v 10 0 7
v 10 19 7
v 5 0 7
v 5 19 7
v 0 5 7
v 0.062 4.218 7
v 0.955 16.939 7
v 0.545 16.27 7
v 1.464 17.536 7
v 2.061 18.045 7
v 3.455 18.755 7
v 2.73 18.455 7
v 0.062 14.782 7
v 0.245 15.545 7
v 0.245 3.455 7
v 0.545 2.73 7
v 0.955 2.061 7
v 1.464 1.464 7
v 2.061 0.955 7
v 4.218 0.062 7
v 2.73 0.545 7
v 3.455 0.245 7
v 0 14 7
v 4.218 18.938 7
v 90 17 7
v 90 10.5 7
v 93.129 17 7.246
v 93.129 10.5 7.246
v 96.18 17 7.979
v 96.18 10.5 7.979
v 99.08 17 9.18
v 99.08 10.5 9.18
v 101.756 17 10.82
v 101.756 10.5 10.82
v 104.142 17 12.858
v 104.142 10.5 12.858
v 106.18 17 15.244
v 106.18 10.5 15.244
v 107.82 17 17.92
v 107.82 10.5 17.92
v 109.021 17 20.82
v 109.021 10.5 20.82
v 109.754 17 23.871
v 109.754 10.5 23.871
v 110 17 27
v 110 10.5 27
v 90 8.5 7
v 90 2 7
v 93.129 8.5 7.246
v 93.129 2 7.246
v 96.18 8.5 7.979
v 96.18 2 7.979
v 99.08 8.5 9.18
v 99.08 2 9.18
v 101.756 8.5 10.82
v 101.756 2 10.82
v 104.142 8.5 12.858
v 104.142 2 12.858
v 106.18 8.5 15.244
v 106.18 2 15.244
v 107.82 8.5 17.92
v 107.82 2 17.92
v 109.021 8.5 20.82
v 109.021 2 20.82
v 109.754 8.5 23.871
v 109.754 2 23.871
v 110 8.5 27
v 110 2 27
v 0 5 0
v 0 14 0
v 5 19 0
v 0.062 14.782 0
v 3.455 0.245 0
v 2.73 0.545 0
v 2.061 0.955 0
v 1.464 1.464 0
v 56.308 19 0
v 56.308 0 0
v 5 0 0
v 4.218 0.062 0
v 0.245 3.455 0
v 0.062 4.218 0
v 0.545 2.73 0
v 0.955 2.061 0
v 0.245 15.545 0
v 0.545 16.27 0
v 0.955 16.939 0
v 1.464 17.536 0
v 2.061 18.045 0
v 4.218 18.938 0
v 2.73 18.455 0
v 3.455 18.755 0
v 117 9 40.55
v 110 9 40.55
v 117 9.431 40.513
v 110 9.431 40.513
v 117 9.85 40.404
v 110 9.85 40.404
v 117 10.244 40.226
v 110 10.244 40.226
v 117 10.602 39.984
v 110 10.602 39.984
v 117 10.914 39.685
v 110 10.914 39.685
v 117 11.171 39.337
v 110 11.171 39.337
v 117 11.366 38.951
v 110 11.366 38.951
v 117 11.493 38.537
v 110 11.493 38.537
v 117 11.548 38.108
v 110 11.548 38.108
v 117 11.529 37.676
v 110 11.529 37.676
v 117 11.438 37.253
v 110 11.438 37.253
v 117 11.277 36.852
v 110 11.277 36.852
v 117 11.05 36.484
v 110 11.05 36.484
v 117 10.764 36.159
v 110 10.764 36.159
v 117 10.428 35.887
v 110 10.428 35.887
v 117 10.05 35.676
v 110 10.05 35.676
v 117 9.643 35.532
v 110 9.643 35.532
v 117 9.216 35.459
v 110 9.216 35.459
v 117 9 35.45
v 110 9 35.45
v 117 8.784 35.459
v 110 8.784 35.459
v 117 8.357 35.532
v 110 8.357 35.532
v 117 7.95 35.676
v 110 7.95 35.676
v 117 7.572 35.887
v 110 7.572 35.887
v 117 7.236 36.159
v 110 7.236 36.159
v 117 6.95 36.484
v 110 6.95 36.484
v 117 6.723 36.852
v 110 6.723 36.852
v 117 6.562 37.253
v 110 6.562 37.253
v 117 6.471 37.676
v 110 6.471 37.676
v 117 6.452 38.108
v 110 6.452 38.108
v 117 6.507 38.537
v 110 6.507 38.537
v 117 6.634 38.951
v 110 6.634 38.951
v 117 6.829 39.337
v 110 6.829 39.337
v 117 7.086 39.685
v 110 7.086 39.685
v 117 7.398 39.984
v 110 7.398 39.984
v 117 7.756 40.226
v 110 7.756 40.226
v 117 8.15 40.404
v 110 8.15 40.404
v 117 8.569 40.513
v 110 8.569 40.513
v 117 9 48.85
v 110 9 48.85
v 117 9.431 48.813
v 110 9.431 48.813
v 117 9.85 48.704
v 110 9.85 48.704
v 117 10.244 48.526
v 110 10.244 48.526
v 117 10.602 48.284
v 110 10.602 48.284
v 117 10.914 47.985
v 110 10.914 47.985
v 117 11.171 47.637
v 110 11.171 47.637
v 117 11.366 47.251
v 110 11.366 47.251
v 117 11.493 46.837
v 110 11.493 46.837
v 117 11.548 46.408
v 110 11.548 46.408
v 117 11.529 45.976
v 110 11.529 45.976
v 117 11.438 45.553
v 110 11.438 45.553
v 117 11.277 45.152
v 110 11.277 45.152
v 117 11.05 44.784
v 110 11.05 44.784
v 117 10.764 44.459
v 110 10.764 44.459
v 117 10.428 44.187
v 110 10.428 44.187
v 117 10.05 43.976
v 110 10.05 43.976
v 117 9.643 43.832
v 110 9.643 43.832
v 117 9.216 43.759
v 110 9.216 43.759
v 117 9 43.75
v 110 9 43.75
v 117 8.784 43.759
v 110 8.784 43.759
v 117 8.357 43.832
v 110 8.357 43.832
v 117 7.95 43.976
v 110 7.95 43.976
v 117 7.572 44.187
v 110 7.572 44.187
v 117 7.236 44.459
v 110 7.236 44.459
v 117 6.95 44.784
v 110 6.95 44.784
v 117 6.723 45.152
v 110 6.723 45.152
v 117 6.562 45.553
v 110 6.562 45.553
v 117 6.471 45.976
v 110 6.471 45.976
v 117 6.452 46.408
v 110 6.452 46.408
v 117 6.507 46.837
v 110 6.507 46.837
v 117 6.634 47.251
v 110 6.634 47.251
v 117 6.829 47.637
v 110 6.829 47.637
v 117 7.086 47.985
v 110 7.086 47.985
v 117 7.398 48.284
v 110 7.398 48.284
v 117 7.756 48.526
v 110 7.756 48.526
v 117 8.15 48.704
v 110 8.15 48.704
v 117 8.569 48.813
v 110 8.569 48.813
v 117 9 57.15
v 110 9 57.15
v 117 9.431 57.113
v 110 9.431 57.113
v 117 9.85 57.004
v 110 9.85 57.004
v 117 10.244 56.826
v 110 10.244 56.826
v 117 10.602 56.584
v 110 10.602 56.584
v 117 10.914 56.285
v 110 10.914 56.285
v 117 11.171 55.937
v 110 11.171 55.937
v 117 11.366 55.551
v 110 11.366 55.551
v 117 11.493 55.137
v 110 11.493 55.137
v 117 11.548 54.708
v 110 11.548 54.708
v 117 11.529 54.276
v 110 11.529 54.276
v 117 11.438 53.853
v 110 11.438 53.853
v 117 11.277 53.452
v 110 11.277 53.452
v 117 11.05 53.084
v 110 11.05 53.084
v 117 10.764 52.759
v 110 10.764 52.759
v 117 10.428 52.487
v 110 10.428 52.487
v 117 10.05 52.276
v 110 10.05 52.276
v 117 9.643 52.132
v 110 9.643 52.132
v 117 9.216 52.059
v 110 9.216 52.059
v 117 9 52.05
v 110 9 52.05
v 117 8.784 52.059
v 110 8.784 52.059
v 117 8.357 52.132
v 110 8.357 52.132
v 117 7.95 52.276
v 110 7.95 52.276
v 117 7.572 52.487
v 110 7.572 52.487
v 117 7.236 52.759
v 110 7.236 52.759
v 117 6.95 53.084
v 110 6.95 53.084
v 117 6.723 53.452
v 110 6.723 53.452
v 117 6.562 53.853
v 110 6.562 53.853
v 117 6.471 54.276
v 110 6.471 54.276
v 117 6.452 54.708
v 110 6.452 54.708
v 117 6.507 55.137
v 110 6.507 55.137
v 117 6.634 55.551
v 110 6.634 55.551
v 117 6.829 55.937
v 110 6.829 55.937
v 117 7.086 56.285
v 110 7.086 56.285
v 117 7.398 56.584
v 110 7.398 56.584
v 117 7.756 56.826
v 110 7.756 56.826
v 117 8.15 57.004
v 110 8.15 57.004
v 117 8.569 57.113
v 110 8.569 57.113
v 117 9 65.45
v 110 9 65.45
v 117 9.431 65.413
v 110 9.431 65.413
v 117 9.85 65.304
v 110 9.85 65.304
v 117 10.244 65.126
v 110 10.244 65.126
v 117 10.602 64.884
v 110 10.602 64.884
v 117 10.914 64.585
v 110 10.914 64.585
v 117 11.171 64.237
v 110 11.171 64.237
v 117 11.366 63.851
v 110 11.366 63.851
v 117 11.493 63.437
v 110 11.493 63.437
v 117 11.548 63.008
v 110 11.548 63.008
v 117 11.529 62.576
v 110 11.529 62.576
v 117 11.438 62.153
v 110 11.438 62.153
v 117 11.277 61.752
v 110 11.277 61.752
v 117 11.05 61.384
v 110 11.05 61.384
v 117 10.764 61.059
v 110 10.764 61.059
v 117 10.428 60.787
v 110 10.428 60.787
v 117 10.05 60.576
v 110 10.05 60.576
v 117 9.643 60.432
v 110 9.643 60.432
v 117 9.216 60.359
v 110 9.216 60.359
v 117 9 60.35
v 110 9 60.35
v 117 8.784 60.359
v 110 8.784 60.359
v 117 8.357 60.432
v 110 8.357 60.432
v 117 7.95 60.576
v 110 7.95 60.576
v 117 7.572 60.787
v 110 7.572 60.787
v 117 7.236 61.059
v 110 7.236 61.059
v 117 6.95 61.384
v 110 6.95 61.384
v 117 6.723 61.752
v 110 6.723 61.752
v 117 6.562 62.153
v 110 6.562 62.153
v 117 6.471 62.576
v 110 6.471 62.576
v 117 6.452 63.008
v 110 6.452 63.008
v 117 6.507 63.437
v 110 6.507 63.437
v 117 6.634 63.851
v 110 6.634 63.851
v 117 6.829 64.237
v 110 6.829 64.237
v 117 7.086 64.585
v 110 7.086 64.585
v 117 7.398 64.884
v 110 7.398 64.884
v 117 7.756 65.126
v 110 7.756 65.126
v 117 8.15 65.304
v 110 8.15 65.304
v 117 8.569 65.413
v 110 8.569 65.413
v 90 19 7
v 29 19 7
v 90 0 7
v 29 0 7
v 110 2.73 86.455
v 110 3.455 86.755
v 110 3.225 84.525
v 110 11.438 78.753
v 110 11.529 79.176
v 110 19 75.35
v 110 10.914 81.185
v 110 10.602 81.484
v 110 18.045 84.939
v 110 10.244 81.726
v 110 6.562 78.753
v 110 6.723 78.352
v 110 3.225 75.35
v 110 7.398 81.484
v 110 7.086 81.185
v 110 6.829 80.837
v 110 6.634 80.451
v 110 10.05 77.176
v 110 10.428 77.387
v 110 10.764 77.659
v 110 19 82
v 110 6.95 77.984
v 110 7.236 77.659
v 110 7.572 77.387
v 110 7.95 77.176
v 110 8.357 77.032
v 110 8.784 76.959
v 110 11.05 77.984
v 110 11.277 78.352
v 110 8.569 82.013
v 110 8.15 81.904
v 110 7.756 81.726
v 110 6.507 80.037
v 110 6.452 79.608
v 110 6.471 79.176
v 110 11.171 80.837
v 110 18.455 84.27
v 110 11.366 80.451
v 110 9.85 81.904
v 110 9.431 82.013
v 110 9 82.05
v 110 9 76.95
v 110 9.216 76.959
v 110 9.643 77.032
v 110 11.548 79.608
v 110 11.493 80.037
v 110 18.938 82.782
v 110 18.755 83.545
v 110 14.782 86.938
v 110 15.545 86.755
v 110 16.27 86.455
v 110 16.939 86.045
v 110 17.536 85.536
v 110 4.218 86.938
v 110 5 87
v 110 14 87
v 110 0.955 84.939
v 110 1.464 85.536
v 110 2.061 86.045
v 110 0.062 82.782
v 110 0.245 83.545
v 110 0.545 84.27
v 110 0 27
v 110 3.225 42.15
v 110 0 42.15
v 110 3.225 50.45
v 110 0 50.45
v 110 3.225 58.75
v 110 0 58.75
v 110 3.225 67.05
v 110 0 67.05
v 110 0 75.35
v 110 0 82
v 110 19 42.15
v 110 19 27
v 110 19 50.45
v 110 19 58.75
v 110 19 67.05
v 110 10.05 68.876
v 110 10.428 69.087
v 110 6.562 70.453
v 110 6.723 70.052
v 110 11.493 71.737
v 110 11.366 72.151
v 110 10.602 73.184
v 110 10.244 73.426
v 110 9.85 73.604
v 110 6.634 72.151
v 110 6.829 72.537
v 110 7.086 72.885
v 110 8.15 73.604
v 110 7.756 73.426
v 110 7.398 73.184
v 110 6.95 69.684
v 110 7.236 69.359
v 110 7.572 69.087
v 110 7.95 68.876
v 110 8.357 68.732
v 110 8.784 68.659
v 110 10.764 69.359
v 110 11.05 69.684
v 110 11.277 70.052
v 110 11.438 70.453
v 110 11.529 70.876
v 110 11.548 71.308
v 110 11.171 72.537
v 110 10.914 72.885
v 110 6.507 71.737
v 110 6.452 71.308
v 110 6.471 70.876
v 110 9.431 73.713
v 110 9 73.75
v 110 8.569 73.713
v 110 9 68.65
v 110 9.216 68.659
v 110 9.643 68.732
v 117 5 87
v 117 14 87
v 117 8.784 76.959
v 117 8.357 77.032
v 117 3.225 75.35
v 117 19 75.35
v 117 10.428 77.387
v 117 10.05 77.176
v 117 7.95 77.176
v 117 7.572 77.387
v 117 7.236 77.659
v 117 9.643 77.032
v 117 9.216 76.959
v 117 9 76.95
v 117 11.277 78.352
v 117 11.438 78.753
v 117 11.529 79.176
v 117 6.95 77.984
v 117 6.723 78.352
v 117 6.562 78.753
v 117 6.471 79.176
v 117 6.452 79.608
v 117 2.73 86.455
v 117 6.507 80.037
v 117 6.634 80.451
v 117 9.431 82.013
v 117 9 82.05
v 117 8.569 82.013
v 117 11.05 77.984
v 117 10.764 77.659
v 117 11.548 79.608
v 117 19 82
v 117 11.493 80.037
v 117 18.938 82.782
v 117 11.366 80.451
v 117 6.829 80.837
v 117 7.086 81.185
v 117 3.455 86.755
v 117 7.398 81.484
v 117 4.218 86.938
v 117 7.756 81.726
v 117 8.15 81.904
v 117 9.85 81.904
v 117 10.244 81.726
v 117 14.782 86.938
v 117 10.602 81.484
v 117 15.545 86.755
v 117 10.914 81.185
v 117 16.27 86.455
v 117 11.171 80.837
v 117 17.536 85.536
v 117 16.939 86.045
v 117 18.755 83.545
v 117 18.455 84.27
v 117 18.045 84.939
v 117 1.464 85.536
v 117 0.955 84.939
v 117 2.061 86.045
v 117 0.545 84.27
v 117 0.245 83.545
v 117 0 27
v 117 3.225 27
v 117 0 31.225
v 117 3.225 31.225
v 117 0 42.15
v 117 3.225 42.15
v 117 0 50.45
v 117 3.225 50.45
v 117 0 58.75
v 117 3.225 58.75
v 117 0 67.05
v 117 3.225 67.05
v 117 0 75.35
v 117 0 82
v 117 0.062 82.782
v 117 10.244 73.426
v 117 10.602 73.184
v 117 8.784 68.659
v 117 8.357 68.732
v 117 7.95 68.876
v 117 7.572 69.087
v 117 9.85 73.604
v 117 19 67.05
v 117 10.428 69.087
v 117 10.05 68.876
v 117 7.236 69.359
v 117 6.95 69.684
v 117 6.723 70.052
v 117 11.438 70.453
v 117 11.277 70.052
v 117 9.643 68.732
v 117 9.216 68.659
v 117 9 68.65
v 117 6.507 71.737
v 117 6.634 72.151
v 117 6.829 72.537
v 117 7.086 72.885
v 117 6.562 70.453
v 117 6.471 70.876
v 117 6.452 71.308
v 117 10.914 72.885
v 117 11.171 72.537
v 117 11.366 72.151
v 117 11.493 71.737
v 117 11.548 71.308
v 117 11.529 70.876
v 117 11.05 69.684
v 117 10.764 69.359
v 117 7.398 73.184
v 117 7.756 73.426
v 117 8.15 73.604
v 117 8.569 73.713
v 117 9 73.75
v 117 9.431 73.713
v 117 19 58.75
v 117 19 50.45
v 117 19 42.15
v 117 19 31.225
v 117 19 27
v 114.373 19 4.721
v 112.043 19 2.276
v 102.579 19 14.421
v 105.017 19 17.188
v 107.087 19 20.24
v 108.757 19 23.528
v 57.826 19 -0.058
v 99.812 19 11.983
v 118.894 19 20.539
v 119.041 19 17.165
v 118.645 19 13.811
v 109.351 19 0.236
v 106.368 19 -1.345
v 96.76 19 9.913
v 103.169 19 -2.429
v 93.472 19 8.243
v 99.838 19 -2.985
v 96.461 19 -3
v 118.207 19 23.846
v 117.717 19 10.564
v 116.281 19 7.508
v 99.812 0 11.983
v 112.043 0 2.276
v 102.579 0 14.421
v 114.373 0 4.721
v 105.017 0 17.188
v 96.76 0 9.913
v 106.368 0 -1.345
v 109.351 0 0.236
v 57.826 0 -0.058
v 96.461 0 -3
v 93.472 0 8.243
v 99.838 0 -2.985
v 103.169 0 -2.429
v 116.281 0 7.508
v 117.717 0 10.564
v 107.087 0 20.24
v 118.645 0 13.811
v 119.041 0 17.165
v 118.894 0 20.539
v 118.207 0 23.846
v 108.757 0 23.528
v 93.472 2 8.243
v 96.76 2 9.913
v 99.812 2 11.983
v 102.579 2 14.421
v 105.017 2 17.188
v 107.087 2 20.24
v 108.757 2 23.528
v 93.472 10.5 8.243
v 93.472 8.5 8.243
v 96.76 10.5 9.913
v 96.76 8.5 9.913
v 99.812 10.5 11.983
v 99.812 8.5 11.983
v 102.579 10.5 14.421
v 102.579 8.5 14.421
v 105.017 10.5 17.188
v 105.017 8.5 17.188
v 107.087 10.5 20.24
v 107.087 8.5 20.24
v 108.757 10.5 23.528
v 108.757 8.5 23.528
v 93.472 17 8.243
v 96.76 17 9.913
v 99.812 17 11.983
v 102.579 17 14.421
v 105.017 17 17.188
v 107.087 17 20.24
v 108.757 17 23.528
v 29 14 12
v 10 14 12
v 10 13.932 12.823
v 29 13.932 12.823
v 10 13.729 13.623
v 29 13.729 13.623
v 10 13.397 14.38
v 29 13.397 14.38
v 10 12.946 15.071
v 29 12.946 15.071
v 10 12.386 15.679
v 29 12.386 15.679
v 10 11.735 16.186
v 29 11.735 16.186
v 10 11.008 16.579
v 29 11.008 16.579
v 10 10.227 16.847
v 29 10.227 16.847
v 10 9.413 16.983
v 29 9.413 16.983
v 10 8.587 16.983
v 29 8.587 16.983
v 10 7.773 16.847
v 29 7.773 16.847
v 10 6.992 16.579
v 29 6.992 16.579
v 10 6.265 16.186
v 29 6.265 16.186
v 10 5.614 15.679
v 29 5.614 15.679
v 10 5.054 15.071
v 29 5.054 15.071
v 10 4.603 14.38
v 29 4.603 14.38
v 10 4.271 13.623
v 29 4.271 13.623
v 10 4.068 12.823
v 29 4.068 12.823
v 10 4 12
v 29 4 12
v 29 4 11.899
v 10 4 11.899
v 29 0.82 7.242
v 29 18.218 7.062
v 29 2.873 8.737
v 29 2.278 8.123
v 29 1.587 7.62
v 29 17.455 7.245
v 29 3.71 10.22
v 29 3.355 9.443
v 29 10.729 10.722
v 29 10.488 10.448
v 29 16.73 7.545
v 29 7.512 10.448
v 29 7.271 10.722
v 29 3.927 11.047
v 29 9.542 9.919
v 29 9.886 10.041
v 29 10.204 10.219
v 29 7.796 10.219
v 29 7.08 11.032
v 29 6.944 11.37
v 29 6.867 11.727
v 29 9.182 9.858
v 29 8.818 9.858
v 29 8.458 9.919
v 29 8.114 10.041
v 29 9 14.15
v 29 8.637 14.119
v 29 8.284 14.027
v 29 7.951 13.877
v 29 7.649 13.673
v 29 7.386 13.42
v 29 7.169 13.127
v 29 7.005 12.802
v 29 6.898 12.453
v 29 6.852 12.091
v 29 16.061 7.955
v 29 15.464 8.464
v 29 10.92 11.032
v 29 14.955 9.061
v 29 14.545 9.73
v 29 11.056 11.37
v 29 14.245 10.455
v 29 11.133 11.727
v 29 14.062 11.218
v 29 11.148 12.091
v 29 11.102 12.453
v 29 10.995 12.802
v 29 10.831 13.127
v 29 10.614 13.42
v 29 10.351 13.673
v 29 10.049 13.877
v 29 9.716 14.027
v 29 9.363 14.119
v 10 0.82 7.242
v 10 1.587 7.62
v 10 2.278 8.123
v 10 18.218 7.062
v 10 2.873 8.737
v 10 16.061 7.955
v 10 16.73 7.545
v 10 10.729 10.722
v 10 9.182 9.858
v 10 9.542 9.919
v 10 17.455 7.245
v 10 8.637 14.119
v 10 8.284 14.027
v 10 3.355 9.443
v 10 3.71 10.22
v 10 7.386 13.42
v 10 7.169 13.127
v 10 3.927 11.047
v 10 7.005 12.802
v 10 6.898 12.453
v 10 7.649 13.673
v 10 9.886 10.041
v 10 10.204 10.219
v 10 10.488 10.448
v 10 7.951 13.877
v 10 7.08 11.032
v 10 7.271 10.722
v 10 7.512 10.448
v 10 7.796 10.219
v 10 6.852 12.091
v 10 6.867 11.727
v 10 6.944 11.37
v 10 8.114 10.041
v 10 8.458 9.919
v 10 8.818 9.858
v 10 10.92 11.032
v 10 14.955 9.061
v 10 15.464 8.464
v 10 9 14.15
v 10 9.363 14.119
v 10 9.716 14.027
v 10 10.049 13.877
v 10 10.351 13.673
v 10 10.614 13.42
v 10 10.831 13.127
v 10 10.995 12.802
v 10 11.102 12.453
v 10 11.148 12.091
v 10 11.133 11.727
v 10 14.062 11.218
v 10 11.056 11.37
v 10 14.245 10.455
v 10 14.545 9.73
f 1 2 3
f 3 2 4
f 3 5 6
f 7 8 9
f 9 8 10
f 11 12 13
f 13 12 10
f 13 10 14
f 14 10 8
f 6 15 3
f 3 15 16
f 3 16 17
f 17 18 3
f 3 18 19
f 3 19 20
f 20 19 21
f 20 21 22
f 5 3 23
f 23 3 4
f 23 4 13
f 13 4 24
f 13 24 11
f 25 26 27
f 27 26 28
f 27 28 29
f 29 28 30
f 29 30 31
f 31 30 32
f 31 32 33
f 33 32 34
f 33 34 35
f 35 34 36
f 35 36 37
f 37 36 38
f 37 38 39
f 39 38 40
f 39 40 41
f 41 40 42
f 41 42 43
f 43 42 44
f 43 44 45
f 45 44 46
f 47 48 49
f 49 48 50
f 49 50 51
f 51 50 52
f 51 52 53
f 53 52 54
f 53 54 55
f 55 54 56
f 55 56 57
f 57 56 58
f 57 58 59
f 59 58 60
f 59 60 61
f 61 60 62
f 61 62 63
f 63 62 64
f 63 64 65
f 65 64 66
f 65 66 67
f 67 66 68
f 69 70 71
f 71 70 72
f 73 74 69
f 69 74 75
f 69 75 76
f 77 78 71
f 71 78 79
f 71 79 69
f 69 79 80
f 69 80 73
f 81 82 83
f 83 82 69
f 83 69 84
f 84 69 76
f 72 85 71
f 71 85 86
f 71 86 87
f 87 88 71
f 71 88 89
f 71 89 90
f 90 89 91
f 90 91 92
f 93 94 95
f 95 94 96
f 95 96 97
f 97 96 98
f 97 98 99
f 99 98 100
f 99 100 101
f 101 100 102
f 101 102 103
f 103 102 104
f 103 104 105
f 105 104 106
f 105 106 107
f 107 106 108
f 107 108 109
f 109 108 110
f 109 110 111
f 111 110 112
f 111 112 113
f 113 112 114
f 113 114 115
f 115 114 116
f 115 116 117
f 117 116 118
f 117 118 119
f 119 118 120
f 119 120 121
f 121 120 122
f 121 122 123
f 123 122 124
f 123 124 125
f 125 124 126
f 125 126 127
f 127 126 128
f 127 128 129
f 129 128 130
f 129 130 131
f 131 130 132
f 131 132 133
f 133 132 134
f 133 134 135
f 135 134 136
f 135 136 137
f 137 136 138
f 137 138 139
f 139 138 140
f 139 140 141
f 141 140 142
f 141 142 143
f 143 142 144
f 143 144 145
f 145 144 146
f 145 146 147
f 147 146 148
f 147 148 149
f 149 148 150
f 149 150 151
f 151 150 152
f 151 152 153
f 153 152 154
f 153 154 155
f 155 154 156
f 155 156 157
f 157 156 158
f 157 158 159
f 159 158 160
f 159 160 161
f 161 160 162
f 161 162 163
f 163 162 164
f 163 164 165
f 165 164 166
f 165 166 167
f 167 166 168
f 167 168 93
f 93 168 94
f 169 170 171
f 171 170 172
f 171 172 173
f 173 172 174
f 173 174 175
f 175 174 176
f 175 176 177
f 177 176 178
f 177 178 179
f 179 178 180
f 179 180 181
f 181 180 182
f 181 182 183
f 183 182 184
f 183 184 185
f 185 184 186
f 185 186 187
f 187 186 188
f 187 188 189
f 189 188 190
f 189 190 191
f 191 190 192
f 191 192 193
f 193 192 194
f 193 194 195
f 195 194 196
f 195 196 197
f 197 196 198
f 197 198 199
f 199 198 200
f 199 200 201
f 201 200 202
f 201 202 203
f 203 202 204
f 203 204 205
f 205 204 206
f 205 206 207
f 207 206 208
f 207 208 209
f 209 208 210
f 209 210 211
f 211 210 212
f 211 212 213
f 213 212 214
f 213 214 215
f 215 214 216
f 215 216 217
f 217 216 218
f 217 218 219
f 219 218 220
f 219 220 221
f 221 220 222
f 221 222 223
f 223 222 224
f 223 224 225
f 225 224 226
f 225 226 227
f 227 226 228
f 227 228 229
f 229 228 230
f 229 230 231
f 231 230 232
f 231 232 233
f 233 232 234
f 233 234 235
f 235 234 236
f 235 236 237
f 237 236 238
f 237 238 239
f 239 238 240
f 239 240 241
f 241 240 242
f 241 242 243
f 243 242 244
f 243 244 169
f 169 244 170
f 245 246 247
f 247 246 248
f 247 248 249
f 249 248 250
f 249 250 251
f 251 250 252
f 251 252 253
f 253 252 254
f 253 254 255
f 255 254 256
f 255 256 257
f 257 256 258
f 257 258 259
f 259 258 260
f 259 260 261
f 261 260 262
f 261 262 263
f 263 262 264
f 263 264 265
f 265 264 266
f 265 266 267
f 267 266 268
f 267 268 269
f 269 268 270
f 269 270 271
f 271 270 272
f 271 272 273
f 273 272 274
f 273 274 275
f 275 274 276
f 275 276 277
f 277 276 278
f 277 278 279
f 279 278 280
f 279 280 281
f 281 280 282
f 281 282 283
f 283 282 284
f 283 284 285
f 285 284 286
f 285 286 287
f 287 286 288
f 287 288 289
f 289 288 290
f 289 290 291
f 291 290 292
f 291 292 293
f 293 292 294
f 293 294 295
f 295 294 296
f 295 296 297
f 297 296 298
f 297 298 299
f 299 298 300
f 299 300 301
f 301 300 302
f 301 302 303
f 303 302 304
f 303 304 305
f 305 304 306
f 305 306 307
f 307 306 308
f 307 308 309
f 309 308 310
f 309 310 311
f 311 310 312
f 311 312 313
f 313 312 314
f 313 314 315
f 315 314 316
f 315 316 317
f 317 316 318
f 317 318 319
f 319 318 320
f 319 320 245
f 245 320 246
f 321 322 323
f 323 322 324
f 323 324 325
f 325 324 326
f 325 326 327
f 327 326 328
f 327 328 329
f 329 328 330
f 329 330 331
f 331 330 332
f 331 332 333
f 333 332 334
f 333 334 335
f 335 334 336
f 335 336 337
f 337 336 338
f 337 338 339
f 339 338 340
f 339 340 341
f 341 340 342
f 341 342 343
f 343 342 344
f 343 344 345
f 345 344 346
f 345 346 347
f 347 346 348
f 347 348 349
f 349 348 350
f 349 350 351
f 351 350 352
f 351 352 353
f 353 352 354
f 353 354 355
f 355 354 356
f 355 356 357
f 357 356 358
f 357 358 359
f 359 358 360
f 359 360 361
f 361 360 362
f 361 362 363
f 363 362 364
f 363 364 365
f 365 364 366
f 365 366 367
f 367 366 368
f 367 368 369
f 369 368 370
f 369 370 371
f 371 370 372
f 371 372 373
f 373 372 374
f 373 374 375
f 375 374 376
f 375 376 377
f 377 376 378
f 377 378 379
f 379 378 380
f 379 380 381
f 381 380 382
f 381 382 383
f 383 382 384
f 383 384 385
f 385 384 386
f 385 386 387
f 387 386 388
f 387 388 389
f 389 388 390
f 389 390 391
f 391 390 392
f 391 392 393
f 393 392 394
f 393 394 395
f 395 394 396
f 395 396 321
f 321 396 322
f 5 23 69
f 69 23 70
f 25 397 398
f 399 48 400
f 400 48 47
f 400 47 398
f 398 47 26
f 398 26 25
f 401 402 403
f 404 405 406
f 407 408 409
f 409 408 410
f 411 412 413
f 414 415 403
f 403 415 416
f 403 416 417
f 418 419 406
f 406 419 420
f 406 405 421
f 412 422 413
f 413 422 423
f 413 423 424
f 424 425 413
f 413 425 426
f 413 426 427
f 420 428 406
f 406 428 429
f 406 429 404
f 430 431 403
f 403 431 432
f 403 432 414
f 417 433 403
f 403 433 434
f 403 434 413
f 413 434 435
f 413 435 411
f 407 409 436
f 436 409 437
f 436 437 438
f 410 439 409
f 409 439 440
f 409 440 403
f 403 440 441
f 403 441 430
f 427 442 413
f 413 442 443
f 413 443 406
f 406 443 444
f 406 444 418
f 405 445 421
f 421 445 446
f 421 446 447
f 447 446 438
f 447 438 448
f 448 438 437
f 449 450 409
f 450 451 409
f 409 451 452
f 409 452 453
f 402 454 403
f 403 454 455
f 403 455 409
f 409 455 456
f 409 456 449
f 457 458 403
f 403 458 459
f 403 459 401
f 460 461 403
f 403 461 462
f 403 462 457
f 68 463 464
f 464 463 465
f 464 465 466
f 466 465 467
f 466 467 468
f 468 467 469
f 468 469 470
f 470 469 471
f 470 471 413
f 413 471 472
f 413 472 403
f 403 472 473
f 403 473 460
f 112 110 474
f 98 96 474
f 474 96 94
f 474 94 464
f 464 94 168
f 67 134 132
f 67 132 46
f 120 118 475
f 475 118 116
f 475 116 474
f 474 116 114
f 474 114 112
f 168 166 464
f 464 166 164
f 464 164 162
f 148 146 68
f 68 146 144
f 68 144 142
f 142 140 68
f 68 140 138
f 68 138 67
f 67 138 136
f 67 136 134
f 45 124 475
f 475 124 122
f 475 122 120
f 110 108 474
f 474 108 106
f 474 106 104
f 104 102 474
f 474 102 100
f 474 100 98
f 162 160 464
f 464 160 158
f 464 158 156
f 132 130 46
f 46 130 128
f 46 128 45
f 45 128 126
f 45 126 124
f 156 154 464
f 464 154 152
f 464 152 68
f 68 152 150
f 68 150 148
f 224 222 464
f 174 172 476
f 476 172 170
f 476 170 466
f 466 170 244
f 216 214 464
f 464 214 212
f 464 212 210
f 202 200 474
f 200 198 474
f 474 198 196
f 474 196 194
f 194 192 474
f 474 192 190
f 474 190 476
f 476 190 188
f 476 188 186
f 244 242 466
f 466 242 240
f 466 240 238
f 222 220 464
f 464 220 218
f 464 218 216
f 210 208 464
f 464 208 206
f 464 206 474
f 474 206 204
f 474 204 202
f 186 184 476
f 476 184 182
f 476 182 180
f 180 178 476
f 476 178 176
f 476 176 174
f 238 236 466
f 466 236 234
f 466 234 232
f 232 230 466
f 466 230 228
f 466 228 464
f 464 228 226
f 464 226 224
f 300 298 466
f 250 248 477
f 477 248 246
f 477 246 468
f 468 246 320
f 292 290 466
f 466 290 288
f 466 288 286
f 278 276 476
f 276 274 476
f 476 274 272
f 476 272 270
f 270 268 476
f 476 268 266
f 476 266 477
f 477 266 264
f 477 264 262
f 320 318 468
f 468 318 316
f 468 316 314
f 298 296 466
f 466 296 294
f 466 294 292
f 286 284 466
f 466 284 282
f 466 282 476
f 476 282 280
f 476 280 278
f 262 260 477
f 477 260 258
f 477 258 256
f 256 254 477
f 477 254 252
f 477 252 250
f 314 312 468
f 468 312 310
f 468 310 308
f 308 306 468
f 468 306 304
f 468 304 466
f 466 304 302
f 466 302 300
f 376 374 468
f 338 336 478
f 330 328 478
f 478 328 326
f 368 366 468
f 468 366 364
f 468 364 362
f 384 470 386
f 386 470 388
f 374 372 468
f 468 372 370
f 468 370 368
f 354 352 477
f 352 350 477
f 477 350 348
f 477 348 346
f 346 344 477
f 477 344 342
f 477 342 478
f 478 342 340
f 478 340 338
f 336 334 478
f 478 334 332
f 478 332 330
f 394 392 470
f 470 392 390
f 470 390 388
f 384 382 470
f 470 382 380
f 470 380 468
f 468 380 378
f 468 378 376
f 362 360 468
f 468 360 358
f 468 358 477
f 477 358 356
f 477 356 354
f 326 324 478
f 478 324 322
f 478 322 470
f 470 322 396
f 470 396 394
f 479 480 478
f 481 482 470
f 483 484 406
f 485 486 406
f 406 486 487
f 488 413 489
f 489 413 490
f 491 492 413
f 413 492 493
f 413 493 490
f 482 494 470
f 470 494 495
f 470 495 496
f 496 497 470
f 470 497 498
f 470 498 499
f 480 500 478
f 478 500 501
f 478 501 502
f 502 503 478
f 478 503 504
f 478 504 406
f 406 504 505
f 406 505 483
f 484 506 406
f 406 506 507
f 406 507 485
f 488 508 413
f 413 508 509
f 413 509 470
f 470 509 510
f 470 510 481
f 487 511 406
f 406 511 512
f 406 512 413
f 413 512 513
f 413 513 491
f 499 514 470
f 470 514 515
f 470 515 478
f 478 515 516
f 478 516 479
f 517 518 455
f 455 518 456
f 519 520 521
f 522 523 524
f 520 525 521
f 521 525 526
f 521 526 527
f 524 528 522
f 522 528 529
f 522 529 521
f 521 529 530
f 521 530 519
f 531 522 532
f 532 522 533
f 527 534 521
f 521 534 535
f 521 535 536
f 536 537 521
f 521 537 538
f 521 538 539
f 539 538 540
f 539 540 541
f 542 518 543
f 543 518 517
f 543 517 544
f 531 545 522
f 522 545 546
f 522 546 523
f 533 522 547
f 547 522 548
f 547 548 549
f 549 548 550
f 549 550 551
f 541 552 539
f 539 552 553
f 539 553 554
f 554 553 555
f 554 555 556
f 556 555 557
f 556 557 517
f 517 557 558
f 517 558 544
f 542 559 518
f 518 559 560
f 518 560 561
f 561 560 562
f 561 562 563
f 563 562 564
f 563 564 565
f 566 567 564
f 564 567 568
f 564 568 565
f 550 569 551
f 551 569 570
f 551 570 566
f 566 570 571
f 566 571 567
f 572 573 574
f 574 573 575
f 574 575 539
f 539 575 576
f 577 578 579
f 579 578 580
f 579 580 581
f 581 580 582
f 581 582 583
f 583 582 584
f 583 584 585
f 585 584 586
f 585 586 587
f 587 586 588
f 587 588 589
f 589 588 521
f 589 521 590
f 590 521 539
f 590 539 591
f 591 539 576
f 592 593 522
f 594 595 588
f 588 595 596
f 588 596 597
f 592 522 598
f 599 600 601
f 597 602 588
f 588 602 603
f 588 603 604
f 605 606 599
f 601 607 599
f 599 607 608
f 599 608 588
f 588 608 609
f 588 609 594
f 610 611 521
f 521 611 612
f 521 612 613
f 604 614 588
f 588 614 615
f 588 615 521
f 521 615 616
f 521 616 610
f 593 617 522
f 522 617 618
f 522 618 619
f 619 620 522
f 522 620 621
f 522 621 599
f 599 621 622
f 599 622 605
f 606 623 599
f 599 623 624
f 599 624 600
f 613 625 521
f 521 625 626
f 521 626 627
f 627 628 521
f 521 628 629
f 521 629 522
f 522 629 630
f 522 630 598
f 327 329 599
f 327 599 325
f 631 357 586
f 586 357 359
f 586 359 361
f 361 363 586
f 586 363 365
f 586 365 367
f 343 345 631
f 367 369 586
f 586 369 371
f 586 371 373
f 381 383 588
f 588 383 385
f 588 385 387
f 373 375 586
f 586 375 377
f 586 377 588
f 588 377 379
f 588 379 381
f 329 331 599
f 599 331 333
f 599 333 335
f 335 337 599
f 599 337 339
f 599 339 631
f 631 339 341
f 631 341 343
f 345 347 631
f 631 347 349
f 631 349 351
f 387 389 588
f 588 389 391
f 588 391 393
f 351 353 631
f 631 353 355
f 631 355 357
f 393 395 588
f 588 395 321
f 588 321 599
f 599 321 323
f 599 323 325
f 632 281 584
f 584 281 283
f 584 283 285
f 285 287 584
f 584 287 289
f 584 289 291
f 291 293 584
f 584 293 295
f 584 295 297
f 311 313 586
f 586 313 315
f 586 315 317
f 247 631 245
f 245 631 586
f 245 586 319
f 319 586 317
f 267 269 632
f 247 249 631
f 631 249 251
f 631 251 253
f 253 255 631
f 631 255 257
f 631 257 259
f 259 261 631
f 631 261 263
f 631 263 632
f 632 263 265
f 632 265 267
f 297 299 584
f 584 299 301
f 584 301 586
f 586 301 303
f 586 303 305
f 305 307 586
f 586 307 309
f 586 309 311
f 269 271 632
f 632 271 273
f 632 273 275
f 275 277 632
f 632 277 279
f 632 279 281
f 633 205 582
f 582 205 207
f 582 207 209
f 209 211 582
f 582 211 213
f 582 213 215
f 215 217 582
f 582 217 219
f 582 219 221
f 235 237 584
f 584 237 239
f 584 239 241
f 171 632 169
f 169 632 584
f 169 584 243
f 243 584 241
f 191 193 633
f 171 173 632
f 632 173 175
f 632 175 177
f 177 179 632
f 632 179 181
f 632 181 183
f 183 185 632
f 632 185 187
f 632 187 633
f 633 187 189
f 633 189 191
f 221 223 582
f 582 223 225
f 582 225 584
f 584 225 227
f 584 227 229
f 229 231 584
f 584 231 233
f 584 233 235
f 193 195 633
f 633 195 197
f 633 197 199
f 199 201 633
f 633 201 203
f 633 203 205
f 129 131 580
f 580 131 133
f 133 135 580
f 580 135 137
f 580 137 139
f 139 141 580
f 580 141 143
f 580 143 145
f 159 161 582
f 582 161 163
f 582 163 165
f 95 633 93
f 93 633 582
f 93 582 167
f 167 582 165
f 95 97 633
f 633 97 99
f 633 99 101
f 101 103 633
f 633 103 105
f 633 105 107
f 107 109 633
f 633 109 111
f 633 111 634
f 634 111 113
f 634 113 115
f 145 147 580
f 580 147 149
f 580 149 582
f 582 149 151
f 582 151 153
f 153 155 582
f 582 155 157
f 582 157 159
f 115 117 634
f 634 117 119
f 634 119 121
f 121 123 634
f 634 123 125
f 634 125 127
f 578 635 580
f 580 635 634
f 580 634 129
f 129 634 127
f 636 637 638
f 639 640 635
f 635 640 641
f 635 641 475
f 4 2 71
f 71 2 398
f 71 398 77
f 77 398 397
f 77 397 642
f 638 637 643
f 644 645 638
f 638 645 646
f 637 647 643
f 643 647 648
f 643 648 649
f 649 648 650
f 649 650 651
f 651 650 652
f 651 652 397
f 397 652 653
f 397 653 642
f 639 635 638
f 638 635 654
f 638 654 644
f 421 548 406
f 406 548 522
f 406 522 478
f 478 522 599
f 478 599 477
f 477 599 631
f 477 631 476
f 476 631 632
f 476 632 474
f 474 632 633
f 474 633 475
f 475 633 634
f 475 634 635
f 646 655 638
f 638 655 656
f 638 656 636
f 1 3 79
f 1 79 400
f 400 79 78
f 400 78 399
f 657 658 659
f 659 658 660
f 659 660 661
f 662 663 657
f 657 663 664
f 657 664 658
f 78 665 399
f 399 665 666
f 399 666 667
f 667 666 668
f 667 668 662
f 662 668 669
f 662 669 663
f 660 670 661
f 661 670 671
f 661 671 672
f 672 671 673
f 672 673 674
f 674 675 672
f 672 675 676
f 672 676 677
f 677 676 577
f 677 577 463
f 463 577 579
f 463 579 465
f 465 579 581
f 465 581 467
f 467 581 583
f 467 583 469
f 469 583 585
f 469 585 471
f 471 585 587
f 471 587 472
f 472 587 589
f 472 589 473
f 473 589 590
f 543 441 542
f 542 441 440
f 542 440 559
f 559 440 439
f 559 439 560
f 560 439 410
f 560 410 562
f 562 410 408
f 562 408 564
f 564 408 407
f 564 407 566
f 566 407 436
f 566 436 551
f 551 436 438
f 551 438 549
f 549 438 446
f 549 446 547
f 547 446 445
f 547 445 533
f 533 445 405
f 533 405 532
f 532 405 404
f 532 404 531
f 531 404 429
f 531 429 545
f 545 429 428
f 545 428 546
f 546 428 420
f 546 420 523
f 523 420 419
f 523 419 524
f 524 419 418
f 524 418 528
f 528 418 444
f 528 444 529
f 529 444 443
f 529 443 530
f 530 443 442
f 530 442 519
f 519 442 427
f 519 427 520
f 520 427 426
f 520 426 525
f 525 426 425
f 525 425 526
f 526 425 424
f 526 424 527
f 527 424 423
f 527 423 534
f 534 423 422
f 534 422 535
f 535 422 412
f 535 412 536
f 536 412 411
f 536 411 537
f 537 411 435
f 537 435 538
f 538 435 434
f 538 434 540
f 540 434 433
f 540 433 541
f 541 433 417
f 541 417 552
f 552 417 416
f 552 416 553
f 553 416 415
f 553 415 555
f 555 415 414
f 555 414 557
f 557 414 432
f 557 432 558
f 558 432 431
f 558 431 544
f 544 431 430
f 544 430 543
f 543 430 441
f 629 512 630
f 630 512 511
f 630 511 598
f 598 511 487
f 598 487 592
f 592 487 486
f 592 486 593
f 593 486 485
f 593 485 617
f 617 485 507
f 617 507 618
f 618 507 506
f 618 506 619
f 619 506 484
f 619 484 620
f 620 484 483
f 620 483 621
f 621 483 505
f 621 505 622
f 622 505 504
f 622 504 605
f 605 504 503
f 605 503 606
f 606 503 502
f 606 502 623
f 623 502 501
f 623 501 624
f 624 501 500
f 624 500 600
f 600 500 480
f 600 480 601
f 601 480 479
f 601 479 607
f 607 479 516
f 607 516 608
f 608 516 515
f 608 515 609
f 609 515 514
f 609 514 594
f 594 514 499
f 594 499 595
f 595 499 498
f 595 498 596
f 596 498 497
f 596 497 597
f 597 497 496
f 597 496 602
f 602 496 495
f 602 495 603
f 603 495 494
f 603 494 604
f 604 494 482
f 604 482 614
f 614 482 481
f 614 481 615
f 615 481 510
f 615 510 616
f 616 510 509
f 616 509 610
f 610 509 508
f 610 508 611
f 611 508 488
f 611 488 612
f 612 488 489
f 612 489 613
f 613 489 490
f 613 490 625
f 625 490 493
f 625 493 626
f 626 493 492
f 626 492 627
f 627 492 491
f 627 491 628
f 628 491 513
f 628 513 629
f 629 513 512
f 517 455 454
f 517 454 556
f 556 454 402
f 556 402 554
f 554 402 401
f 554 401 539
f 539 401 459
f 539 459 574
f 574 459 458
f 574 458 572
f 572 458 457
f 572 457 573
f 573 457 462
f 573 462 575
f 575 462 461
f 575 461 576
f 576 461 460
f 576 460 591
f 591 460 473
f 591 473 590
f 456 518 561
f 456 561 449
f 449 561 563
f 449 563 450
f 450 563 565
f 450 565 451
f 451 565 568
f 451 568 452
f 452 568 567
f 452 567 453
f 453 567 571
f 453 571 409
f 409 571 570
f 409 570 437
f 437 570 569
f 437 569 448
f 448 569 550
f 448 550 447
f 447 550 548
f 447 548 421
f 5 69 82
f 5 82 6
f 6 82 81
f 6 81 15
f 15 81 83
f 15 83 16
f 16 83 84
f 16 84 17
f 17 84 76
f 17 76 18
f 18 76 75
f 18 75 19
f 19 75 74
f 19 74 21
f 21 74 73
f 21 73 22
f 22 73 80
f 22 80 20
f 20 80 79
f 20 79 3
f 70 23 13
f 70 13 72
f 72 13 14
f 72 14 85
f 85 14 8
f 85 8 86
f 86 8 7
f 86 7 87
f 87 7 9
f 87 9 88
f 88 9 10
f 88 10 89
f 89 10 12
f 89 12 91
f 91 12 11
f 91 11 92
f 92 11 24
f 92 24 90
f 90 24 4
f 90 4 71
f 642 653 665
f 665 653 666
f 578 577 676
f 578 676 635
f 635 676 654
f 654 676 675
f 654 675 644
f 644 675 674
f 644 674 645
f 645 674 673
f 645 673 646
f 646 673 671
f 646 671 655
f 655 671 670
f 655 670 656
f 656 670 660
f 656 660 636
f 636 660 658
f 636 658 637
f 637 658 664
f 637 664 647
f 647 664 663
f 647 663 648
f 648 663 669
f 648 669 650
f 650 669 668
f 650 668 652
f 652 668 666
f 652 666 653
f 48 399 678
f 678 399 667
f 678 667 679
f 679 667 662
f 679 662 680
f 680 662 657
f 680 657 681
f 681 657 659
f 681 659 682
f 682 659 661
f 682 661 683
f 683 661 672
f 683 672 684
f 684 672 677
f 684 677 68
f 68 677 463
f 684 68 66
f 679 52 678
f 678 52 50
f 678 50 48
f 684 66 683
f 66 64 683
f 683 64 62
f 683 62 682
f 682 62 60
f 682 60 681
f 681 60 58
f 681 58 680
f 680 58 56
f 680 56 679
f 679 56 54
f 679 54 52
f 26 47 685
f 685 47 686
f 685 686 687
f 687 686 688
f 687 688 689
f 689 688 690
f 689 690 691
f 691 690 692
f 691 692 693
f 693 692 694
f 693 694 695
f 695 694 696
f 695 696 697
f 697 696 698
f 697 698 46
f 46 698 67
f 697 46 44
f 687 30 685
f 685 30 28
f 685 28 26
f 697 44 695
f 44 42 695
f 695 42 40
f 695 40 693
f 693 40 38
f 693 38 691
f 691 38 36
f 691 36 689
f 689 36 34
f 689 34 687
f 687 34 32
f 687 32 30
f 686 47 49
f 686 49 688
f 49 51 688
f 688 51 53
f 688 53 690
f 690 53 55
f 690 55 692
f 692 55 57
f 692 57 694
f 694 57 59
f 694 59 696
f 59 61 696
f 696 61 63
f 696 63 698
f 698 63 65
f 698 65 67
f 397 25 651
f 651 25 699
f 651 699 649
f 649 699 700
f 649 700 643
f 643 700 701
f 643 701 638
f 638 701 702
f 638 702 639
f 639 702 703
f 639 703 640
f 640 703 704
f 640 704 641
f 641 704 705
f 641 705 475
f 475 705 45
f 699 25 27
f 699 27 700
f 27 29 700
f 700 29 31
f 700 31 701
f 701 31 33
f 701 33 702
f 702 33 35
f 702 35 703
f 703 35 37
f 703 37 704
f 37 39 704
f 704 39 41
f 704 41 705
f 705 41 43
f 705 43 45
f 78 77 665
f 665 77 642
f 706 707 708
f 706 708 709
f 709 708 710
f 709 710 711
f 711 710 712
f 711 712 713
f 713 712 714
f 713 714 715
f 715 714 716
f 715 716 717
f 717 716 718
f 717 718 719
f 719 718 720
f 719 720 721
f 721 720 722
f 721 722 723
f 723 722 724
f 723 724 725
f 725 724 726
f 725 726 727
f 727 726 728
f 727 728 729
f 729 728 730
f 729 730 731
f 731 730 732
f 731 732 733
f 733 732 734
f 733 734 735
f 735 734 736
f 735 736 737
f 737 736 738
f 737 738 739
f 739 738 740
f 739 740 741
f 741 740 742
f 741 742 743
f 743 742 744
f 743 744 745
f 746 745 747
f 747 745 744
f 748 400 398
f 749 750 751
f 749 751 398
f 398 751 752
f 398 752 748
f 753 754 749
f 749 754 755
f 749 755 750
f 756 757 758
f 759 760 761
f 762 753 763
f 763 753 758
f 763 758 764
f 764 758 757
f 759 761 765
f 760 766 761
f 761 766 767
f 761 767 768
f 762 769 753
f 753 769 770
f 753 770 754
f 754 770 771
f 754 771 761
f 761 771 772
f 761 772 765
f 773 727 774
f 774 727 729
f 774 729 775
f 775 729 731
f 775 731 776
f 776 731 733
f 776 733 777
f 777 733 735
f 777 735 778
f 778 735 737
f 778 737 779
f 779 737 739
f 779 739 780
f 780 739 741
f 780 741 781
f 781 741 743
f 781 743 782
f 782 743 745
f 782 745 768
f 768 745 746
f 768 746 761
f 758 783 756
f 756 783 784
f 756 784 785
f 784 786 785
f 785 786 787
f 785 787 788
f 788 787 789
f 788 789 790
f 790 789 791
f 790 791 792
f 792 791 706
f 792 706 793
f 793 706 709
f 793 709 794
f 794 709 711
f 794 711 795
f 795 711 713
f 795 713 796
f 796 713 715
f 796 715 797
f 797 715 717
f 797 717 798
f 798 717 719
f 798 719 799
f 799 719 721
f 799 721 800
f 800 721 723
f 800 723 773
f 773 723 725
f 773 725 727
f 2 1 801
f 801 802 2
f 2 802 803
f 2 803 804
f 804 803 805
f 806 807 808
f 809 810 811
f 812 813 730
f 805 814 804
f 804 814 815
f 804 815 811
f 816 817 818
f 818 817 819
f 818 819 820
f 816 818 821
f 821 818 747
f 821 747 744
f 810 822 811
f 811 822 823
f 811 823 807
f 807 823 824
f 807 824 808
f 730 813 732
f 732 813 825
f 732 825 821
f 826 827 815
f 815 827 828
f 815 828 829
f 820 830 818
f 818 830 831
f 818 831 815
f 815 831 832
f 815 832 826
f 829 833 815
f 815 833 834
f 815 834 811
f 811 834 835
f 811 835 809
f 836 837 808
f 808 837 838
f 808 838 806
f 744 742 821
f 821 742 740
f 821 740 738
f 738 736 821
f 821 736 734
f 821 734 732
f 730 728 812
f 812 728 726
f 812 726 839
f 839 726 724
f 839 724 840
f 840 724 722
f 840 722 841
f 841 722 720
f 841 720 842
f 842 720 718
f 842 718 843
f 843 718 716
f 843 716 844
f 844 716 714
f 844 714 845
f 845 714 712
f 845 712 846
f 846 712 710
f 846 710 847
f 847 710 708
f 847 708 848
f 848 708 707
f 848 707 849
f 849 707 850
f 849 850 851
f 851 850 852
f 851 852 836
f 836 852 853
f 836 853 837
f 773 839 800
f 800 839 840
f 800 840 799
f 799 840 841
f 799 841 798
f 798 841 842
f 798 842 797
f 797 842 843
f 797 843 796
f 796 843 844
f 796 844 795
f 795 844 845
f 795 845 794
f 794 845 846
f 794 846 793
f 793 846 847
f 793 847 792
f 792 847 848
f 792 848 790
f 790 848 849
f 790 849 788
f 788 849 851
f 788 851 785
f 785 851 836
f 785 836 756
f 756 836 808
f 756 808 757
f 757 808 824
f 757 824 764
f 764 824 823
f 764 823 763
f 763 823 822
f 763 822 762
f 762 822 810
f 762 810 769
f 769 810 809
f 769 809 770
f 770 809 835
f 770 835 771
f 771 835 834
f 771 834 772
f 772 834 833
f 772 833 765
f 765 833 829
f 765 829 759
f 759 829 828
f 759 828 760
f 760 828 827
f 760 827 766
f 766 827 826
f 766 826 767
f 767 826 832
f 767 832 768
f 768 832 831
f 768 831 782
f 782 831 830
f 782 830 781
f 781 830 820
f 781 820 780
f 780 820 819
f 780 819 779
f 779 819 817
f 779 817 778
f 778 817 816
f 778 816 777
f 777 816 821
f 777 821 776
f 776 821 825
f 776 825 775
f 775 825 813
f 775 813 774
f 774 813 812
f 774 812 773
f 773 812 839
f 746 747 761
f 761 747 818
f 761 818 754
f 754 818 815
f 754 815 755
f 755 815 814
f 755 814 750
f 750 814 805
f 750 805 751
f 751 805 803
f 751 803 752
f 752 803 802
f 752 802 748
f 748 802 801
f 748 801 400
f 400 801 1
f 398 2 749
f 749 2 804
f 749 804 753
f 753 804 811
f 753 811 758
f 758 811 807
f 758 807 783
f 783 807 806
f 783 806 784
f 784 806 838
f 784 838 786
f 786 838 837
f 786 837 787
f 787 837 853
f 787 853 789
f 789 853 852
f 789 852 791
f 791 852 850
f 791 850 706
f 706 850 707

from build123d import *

# Parameters (mm, degrees)
BOSS_EXTRUDE1_DEPTH = 19
SKETCH4_R           = 2.55
CUT_EXTRUDE1_DEPTH  = 148.034009671
LPATTERN1_COUNT     = 6
LPATTERN1_PITCH     = 8.3
FILLET2_R           = 5
BOSS_EXTRUDE4_DEPTH = 19
BOSS_EXTRUDE5_DEPTH = 2
LPATTERN3_COUNT     = 3
LPATTERN3_PITCH     = 8.5
FILLET4_R           = 20
SKETCH9_R           = 2.15
BOSS_EXTRUDE6_DEPTH = 19
FILLET5_R           = 5


with BuildPart() as part:
    # Sketch1 → Boss-Extrude1 (new body)
    with BuildSketch(Plane(origin=(0, 0, 0), x_dir=(1, 0, 0), z_dir=(0, 1, 0))):
        with BuildLine():
            Line((0, 0), (90, 0))
            ThreePointArc((90, 0), (109.091883092, -7.908116908), (117, -27))
            Line((117, -27), (117, -87))
            Line((117, -87), (110, -87))
            Line((110, -87), (110, -27))
            ThreePointArc((110, -27), (104.142135624, -12.857864376), (90, -7))
            Line((90, -7), (0, -7))
            Line((0, -7), (0, 0))
        make_face()
    extrude(amount=BOSS_EXTRUDE1_DEPTH)

    # Sketch4 → Cut-Extrude1 (cut, through all)
    with BuildSketch(Plane(origin=(0, 0, 0), x_dir=(0, 0, -1), z_dir=(1, 0, 0))):
        with Locations((-79.5, 9)):
            Circle(SKETCH4_R)
    cut_extrude1 = extrude(amount=CUT_EXTRUDE1_DEPTH, mode=Mode.SUBTRACT)

    # LPattern1: Cut-Extrude1 ×6
    with Locations(*[(0, 0, -i * LPATTERN1_PITCH) for i in range(1, LPATTERN1_COUNT)]):
        add(cut_extrude1, mode=Mode.SUBTRACT)

    # Fillet2
    fillet2_edges = [part.edges().sort_by_distance(p)[0] for p in [
        (0, 0, 3.5),
        (113.5, 19, 87),
        (0, 19, 3.5),
        (113.5, 0, 87),
    ]]
    fillet(fillet2_edges, radius=FILLET2_R)

    # Sketch6 → Boss-Extrude4 (add)
    with BuildSketch(Plane(origin=(0, 0, 0), x_dir=(1, 0, 0), z_dir=(0, 1, 0))):
        with BuildLine():
            Line((57.067989457, 0), (96.460545107, 3))
            ThreePointArc((96.460545107, 3), (115.383129249, -6.075834674), (117, -27))
            ThreePointArc((117, -27), (109.091883092, -7.908116908), (90, 0))
            Line((90, 0), (57.067989457, 0))
        make_face()
    extrude(amount=BOSS_EXTRUDE4_DEPTH)

    # Sketch8 → Boss-Extrude5 (add)
    with BuildSketch(Plane(origin=(0, 0, 0), x_dir=(1, 0, 0), z_dir=(0, 1, 0))):
        with BuildLine():
            ThreePointArc((90, -7), (102.578584062, -14.421415938), (110, -27))
            ThreePointArc((110, -27), (104.142135624, -12.857864376), (90, -7))
        make_face()
    boss_extrude5 = extrude(amount=BOSS_EXTRUDE5_DEPTH)

    # LPattern3: Boss-Extrude5 ×3
    with Locations(*[(0, i * LPATTERN3_PITCH, 0) for i in range(1, LPATTERN3_COUNT)]):
        add(boss_extrude5)

    # Fillet4
    # the kernel refuses this fillet: 20 mm, written as the material it adds along each edge
    with BuildSketch(Plane(origin=(57.067989457, 0, 0), x_dir=(-1, 0, 0), z_dir=(0, 1, 0))) as fillet4_piece_1:
        with BuildLine():
            CenterArc((FILLET4_R * 0.0380232084134, -FILLET4_R), FILLET4_R, 90, 4.355040752)
            Line((-FILLET4_R * 0.0379134219382, -FILLET4_R * 0.00288735432207), (0, 0))
            Line((0, 0), (FILLET4_R * 0.0380232084134, 0))
        make_face()
    extrude(amount=19)

    # Sketch9 → Boss-Extrude6 (add)
    with BuildSketch(Plane.ZY.offset(-10)):
        with BuildLine():
            Line((7, 14), (12, 14))
            ThreePointArc((12, 14), (17, 9), (12, 4))
            Line((12, 4), (7, 4))
            Line((7, 4), (7, 14))
        make_face()
        with Locations((12, 9)):
            Circle(SKETCH9_R, mode=Mode.SUBTRACT)
    extrude(amount=-BOSS_EXTRUDE6_DEPTH)

    # Fillet5
    # the kernel refuses this fillet: 5 mm, written as the material it adds along each edge
    with BuildSketch(Plane(origin=(10, 4, 7), x_dir=(0, -1.0, 1.5831780331149625e-12), z_dir=(1, 0, 0))) as fillet5_piece_1:
        with BuildLine():
            CenterArc((5, -4.898979486), FILLET5_R, 101.536959033, 78.463040967)
            Line((0, -4.898979486), (0, 0))
            Line((0, 0), (4, 0))
        make_face()
    extrude(amount=19)
    with BuildSketch(Plane(origin=(10, 14, 7), x_dir=(0, 1, 0), z_dir=(1, 0, 0))) as fillet5_piece_2:
        with BuildLine():
            CenterArc((FILLET5_R, FILLET5_R), FILLET5_R, 180, 90)
            Line((0, FILLET5_R), (0, 0))
            Line((0, 0), (FILLET5_R, 0))
        make_face()
    extrude(amount=19)


solid = part.part
